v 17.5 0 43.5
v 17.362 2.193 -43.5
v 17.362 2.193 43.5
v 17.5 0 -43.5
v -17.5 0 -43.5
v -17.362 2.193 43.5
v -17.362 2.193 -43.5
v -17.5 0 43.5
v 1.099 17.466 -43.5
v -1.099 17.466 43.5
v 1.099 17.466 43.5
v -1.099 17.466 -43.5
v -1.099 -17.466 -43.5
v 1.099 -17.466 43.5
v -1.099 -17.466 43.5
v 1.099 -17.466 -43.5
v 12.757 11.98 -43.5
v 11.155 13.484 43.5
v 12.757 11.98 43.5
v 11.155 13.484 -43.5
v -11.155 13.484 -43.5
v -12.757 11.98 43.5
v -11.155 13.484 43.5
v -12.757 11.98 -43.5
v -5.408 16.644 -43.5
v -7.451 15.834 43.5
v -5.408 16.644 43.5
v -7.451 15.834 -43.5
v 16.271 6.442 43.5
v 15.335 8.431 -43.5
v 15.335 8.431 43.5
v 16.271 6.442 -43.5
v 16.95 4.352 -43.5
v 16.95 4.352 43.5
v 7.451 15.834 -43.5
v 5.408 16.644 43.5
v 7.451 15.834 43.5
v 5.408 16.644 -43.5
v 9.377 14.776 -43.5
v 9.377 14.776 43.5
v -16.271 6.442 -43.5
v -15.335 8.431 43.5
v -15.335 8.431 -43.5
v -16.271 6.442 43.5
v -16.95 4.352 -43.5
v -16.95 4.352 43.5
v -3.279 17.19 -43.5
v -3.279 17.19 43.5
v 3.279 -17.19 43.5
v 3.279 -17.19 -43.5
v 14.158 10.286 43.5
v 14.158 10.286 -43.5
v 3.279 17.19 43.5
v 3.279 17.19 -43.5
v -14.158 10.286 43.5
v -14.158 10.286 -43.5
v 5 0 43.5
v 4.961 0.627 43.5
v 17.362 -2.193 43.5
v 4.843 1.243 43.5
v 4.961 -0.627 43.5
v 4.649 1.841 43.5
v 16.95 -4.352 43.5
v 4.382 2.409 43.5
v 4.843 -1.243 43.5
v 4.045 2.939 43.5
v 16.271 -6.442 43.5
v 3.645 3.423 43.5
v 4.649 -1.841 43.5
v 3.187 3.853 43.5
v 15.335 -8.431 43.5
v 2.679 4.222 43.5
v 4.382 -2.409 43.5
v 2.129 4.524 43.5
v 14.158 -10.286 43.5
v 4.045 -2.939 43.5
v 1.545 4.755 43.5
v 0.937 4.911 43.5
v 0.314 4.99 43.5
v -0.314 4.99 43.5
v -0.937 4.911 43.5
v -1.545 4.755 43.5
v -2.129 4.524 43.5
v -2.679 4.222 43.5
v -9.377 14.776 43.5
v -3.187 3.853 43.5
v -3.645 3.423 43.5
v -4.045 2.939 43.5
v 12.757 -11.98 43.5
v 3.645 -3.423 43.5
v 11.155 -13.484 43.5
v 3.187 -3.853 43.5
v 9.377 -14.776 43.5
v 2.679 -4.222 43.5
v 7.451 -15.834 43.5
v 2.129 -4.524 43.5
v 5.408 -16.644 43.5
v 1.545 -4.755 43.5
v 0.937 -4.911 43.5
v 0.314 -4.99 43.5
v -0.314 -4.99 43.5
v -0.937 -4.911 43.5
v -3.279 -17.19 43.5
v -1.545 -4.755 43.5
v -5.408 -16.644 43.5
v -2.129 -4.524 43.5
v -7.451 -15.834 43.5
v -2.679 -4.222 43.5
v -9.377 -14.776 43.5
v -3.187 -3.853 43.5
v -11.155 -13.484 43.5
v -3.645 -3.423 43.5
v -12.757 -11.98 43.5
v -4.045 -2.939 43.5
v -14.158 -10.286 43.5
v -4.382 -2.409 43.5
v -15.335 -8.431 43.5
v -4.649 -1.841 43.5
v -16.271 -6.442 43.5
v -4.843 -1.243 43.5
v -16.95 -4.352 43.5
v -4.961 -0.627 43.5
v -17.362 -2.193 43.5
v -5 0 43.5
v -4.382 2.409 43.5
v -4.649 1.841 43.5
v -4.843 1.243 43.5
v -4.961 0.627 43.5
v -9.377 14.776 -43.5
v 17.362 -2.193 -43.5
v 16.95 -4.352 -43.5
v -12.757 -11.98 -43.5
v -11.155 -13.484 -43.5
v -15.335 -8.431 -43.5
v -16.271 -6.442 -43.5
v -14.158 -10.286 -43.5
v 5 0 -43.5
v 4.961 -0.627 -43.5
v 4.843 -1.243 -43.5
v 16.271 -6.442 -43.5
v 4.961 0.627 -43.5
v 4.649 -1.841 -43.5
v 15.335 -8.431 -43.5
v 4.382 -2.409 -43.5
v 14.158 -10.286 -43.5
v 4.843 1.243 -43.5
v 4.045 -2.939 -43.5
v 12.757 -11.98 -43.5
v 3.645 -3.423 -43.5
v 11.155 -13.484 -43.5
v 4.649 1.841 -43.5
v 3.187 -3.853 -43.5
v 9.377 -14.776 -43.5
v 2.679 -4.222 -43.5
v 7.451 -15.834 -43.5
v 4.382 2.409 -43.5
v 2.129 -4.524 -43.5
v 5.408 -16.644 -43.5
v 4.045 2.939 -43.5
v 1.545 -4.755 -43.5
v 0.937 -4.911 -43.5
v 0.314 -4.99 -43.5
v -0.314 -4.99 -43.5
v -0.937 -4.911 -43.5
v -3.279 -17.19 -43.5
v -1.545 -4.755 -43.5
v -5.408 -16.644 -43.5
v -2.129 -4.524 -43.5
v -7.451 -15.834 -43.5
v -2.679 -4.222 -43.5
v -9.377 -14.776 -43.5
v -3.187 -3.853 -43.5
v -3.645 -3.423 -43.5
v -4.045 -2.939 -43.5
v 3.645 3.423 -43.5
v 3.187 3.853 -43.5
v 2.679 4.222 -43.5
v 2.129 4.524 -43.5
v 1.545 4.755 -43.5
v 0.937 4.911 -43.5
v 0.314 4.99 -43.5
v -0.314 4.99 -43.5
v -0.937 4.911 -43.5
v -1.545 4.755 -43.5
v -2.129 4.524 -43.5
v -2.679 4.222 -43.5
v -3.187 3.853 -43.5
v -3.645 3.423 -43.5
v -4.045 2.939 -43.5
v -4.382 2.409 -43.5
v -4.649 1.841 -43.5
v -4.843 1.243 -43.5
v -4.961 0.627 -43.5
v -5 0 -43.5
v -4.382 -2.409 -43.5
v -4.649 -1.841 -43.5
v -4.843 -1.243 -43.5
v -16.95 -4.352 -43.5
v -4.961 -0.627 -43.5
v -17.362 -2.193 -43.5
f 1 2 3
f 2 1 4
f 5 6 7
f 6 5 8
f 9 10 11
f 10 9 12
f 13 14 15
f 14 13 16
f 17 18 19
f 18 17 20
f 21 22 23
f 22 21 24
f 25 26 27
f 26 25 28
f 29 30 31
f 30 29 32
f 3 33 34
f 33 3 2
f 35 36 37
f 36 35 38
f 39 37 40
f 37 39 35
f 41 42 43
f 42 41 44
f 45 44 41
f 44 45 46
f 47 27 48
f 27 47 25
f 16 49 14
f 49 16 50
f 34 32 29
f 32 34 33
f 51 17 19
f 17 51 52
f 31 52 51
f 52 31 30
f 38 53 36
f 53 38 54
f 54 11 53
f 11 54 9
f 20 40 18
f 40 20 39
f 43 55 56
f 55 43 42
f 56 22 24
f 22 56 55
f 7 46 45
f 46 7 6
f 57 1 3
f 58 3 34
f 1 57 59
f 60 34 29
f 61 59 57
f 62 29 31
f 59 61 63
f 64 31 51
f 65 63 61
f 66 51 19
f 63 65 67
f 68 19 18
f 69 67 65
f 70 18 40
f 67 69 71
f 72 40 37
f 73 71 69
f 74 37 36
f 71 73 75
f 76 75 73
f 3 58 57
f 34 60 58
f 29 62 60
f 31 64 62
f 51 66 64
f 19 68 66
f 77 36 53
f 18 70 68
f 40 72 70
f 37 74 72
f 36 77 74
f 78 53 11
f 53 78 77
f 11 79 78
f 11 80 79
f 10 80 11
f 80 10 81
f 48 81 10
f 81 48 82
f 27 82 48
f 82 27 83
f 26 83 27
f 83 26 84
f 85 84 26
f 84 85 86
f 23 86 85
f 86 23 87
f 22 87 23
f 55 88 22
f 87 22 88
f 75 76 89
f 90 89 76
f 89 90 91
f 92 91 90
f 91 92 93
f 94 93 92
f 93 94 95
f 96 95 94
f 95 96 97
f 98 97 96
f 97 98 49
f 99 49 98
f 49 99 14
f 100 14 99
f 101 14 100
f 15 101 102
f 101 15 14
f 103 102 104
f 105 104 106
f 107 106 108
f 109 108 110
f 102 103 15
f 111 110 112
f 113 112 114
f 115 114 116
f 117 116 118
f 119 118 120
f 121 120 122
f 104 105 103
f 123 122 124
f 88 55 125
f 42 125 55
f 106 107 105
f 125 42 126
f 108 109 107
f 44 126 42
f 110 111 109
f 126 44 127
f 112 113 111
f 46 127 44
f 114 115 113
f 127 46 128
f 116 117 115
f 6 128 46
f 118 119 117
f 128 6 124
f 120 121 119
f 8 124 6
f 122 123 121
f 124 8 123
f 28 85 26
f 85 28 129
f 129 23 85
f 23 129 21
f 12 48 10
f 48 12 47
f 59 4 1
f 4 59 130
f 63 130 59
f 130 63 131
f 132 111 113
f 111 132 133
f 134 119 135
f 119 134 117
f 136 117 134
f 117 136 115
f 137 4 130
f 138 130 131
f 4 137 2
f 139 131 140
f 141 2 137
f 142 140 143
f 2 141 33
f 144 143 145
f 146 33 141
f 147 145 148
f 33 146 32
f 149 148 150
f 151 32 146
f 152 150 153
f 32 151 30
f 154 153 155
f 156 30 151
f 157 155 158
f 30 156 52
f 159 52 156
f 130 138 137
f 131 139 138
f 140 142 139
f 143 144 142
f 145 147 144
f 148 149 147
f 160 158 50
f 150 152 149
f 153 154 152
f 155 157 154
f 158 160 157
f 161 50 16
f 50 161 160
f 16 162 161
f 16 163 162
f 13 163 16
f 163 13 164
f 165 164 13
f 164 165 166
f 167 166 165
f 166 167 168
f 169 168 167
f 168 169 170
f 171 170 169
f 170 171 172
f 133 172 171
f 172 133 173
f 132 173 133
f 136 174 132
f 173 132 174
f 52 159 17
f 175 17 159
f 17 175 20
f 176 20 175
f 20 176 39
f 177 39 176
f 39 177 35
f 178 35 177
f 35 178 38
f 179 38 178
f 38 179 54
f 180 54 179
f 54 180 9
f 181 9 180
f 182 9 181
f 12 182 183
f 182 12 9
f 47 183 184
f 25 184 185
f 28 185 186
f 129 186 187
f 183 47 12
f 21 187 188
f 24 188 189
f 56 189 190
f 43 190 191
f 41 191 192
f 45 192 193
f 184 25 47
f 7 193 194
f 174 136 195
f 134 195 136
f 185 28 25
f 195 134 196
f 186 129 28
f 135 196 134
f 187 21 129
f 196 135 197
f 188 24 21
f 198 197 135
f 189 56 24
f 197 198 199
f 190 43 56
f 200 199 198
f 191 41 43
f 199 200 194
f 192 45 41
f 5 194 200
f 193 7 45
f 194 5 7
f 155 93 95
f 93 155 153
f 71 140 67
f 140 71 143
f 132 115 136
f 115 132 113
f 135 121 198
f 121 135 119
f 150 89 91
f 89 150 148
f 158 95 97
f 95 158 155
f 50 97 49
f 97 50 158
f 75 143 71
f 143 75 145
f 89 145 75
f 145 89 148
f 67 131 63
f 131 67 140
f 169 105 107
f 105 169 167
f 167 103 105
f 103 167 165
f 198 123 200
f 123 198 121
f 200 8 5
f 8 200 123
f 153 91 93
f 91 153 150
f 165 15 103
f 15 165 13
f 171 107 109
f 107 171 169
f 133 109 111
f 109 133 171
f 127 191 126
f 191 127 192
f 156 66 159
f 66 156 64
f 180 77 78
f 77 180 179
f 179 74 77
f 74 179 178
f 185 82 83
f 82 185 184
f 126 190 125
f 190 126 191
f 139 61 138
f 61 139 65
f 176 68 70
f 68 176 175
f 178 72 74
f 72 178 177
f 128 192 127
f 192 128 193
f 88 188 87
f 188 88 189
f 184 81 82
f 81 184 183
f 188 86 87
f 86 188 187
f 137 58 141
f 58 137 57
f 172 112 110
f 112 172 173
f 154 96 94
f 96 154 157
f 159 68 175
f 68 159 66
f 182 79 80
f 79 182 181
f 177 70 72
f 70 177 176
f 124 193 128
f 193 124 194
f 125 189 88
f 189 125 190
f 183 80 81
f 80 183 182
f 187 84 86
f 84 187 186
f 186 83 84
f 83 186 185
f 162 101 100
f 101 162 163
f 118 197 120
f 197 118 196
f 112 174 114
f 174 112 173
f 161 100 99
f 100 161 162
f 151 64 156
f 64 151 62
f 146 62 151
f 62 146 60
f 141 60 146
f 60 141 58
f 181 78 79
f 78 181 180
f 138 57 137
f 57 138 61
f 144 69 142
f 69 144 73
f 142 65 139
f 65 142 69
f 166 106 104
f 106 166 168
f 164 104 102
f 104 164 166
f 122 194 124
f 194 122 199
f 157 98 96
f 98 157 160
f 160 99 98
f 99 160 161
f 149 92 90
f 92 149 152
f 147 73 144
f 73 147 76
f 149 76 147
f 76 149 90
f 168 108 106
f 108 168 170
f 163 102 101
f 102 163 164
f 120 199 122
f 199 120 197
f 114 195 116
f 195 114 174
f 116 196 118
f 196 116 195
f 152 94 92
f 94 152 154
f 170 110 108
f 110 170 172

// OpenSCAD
$fn = 50;


difference() {
	union() {
		translate(v = [0, 0, -43.5000000000]) {
			cylinder(h = 87, r = 17.5000000000);
		}
	}
	union() {
		translate(v = [0, 0, -100.0000000000]) {
			cylinder(h = 200, r = 5);
		}
	}
}
